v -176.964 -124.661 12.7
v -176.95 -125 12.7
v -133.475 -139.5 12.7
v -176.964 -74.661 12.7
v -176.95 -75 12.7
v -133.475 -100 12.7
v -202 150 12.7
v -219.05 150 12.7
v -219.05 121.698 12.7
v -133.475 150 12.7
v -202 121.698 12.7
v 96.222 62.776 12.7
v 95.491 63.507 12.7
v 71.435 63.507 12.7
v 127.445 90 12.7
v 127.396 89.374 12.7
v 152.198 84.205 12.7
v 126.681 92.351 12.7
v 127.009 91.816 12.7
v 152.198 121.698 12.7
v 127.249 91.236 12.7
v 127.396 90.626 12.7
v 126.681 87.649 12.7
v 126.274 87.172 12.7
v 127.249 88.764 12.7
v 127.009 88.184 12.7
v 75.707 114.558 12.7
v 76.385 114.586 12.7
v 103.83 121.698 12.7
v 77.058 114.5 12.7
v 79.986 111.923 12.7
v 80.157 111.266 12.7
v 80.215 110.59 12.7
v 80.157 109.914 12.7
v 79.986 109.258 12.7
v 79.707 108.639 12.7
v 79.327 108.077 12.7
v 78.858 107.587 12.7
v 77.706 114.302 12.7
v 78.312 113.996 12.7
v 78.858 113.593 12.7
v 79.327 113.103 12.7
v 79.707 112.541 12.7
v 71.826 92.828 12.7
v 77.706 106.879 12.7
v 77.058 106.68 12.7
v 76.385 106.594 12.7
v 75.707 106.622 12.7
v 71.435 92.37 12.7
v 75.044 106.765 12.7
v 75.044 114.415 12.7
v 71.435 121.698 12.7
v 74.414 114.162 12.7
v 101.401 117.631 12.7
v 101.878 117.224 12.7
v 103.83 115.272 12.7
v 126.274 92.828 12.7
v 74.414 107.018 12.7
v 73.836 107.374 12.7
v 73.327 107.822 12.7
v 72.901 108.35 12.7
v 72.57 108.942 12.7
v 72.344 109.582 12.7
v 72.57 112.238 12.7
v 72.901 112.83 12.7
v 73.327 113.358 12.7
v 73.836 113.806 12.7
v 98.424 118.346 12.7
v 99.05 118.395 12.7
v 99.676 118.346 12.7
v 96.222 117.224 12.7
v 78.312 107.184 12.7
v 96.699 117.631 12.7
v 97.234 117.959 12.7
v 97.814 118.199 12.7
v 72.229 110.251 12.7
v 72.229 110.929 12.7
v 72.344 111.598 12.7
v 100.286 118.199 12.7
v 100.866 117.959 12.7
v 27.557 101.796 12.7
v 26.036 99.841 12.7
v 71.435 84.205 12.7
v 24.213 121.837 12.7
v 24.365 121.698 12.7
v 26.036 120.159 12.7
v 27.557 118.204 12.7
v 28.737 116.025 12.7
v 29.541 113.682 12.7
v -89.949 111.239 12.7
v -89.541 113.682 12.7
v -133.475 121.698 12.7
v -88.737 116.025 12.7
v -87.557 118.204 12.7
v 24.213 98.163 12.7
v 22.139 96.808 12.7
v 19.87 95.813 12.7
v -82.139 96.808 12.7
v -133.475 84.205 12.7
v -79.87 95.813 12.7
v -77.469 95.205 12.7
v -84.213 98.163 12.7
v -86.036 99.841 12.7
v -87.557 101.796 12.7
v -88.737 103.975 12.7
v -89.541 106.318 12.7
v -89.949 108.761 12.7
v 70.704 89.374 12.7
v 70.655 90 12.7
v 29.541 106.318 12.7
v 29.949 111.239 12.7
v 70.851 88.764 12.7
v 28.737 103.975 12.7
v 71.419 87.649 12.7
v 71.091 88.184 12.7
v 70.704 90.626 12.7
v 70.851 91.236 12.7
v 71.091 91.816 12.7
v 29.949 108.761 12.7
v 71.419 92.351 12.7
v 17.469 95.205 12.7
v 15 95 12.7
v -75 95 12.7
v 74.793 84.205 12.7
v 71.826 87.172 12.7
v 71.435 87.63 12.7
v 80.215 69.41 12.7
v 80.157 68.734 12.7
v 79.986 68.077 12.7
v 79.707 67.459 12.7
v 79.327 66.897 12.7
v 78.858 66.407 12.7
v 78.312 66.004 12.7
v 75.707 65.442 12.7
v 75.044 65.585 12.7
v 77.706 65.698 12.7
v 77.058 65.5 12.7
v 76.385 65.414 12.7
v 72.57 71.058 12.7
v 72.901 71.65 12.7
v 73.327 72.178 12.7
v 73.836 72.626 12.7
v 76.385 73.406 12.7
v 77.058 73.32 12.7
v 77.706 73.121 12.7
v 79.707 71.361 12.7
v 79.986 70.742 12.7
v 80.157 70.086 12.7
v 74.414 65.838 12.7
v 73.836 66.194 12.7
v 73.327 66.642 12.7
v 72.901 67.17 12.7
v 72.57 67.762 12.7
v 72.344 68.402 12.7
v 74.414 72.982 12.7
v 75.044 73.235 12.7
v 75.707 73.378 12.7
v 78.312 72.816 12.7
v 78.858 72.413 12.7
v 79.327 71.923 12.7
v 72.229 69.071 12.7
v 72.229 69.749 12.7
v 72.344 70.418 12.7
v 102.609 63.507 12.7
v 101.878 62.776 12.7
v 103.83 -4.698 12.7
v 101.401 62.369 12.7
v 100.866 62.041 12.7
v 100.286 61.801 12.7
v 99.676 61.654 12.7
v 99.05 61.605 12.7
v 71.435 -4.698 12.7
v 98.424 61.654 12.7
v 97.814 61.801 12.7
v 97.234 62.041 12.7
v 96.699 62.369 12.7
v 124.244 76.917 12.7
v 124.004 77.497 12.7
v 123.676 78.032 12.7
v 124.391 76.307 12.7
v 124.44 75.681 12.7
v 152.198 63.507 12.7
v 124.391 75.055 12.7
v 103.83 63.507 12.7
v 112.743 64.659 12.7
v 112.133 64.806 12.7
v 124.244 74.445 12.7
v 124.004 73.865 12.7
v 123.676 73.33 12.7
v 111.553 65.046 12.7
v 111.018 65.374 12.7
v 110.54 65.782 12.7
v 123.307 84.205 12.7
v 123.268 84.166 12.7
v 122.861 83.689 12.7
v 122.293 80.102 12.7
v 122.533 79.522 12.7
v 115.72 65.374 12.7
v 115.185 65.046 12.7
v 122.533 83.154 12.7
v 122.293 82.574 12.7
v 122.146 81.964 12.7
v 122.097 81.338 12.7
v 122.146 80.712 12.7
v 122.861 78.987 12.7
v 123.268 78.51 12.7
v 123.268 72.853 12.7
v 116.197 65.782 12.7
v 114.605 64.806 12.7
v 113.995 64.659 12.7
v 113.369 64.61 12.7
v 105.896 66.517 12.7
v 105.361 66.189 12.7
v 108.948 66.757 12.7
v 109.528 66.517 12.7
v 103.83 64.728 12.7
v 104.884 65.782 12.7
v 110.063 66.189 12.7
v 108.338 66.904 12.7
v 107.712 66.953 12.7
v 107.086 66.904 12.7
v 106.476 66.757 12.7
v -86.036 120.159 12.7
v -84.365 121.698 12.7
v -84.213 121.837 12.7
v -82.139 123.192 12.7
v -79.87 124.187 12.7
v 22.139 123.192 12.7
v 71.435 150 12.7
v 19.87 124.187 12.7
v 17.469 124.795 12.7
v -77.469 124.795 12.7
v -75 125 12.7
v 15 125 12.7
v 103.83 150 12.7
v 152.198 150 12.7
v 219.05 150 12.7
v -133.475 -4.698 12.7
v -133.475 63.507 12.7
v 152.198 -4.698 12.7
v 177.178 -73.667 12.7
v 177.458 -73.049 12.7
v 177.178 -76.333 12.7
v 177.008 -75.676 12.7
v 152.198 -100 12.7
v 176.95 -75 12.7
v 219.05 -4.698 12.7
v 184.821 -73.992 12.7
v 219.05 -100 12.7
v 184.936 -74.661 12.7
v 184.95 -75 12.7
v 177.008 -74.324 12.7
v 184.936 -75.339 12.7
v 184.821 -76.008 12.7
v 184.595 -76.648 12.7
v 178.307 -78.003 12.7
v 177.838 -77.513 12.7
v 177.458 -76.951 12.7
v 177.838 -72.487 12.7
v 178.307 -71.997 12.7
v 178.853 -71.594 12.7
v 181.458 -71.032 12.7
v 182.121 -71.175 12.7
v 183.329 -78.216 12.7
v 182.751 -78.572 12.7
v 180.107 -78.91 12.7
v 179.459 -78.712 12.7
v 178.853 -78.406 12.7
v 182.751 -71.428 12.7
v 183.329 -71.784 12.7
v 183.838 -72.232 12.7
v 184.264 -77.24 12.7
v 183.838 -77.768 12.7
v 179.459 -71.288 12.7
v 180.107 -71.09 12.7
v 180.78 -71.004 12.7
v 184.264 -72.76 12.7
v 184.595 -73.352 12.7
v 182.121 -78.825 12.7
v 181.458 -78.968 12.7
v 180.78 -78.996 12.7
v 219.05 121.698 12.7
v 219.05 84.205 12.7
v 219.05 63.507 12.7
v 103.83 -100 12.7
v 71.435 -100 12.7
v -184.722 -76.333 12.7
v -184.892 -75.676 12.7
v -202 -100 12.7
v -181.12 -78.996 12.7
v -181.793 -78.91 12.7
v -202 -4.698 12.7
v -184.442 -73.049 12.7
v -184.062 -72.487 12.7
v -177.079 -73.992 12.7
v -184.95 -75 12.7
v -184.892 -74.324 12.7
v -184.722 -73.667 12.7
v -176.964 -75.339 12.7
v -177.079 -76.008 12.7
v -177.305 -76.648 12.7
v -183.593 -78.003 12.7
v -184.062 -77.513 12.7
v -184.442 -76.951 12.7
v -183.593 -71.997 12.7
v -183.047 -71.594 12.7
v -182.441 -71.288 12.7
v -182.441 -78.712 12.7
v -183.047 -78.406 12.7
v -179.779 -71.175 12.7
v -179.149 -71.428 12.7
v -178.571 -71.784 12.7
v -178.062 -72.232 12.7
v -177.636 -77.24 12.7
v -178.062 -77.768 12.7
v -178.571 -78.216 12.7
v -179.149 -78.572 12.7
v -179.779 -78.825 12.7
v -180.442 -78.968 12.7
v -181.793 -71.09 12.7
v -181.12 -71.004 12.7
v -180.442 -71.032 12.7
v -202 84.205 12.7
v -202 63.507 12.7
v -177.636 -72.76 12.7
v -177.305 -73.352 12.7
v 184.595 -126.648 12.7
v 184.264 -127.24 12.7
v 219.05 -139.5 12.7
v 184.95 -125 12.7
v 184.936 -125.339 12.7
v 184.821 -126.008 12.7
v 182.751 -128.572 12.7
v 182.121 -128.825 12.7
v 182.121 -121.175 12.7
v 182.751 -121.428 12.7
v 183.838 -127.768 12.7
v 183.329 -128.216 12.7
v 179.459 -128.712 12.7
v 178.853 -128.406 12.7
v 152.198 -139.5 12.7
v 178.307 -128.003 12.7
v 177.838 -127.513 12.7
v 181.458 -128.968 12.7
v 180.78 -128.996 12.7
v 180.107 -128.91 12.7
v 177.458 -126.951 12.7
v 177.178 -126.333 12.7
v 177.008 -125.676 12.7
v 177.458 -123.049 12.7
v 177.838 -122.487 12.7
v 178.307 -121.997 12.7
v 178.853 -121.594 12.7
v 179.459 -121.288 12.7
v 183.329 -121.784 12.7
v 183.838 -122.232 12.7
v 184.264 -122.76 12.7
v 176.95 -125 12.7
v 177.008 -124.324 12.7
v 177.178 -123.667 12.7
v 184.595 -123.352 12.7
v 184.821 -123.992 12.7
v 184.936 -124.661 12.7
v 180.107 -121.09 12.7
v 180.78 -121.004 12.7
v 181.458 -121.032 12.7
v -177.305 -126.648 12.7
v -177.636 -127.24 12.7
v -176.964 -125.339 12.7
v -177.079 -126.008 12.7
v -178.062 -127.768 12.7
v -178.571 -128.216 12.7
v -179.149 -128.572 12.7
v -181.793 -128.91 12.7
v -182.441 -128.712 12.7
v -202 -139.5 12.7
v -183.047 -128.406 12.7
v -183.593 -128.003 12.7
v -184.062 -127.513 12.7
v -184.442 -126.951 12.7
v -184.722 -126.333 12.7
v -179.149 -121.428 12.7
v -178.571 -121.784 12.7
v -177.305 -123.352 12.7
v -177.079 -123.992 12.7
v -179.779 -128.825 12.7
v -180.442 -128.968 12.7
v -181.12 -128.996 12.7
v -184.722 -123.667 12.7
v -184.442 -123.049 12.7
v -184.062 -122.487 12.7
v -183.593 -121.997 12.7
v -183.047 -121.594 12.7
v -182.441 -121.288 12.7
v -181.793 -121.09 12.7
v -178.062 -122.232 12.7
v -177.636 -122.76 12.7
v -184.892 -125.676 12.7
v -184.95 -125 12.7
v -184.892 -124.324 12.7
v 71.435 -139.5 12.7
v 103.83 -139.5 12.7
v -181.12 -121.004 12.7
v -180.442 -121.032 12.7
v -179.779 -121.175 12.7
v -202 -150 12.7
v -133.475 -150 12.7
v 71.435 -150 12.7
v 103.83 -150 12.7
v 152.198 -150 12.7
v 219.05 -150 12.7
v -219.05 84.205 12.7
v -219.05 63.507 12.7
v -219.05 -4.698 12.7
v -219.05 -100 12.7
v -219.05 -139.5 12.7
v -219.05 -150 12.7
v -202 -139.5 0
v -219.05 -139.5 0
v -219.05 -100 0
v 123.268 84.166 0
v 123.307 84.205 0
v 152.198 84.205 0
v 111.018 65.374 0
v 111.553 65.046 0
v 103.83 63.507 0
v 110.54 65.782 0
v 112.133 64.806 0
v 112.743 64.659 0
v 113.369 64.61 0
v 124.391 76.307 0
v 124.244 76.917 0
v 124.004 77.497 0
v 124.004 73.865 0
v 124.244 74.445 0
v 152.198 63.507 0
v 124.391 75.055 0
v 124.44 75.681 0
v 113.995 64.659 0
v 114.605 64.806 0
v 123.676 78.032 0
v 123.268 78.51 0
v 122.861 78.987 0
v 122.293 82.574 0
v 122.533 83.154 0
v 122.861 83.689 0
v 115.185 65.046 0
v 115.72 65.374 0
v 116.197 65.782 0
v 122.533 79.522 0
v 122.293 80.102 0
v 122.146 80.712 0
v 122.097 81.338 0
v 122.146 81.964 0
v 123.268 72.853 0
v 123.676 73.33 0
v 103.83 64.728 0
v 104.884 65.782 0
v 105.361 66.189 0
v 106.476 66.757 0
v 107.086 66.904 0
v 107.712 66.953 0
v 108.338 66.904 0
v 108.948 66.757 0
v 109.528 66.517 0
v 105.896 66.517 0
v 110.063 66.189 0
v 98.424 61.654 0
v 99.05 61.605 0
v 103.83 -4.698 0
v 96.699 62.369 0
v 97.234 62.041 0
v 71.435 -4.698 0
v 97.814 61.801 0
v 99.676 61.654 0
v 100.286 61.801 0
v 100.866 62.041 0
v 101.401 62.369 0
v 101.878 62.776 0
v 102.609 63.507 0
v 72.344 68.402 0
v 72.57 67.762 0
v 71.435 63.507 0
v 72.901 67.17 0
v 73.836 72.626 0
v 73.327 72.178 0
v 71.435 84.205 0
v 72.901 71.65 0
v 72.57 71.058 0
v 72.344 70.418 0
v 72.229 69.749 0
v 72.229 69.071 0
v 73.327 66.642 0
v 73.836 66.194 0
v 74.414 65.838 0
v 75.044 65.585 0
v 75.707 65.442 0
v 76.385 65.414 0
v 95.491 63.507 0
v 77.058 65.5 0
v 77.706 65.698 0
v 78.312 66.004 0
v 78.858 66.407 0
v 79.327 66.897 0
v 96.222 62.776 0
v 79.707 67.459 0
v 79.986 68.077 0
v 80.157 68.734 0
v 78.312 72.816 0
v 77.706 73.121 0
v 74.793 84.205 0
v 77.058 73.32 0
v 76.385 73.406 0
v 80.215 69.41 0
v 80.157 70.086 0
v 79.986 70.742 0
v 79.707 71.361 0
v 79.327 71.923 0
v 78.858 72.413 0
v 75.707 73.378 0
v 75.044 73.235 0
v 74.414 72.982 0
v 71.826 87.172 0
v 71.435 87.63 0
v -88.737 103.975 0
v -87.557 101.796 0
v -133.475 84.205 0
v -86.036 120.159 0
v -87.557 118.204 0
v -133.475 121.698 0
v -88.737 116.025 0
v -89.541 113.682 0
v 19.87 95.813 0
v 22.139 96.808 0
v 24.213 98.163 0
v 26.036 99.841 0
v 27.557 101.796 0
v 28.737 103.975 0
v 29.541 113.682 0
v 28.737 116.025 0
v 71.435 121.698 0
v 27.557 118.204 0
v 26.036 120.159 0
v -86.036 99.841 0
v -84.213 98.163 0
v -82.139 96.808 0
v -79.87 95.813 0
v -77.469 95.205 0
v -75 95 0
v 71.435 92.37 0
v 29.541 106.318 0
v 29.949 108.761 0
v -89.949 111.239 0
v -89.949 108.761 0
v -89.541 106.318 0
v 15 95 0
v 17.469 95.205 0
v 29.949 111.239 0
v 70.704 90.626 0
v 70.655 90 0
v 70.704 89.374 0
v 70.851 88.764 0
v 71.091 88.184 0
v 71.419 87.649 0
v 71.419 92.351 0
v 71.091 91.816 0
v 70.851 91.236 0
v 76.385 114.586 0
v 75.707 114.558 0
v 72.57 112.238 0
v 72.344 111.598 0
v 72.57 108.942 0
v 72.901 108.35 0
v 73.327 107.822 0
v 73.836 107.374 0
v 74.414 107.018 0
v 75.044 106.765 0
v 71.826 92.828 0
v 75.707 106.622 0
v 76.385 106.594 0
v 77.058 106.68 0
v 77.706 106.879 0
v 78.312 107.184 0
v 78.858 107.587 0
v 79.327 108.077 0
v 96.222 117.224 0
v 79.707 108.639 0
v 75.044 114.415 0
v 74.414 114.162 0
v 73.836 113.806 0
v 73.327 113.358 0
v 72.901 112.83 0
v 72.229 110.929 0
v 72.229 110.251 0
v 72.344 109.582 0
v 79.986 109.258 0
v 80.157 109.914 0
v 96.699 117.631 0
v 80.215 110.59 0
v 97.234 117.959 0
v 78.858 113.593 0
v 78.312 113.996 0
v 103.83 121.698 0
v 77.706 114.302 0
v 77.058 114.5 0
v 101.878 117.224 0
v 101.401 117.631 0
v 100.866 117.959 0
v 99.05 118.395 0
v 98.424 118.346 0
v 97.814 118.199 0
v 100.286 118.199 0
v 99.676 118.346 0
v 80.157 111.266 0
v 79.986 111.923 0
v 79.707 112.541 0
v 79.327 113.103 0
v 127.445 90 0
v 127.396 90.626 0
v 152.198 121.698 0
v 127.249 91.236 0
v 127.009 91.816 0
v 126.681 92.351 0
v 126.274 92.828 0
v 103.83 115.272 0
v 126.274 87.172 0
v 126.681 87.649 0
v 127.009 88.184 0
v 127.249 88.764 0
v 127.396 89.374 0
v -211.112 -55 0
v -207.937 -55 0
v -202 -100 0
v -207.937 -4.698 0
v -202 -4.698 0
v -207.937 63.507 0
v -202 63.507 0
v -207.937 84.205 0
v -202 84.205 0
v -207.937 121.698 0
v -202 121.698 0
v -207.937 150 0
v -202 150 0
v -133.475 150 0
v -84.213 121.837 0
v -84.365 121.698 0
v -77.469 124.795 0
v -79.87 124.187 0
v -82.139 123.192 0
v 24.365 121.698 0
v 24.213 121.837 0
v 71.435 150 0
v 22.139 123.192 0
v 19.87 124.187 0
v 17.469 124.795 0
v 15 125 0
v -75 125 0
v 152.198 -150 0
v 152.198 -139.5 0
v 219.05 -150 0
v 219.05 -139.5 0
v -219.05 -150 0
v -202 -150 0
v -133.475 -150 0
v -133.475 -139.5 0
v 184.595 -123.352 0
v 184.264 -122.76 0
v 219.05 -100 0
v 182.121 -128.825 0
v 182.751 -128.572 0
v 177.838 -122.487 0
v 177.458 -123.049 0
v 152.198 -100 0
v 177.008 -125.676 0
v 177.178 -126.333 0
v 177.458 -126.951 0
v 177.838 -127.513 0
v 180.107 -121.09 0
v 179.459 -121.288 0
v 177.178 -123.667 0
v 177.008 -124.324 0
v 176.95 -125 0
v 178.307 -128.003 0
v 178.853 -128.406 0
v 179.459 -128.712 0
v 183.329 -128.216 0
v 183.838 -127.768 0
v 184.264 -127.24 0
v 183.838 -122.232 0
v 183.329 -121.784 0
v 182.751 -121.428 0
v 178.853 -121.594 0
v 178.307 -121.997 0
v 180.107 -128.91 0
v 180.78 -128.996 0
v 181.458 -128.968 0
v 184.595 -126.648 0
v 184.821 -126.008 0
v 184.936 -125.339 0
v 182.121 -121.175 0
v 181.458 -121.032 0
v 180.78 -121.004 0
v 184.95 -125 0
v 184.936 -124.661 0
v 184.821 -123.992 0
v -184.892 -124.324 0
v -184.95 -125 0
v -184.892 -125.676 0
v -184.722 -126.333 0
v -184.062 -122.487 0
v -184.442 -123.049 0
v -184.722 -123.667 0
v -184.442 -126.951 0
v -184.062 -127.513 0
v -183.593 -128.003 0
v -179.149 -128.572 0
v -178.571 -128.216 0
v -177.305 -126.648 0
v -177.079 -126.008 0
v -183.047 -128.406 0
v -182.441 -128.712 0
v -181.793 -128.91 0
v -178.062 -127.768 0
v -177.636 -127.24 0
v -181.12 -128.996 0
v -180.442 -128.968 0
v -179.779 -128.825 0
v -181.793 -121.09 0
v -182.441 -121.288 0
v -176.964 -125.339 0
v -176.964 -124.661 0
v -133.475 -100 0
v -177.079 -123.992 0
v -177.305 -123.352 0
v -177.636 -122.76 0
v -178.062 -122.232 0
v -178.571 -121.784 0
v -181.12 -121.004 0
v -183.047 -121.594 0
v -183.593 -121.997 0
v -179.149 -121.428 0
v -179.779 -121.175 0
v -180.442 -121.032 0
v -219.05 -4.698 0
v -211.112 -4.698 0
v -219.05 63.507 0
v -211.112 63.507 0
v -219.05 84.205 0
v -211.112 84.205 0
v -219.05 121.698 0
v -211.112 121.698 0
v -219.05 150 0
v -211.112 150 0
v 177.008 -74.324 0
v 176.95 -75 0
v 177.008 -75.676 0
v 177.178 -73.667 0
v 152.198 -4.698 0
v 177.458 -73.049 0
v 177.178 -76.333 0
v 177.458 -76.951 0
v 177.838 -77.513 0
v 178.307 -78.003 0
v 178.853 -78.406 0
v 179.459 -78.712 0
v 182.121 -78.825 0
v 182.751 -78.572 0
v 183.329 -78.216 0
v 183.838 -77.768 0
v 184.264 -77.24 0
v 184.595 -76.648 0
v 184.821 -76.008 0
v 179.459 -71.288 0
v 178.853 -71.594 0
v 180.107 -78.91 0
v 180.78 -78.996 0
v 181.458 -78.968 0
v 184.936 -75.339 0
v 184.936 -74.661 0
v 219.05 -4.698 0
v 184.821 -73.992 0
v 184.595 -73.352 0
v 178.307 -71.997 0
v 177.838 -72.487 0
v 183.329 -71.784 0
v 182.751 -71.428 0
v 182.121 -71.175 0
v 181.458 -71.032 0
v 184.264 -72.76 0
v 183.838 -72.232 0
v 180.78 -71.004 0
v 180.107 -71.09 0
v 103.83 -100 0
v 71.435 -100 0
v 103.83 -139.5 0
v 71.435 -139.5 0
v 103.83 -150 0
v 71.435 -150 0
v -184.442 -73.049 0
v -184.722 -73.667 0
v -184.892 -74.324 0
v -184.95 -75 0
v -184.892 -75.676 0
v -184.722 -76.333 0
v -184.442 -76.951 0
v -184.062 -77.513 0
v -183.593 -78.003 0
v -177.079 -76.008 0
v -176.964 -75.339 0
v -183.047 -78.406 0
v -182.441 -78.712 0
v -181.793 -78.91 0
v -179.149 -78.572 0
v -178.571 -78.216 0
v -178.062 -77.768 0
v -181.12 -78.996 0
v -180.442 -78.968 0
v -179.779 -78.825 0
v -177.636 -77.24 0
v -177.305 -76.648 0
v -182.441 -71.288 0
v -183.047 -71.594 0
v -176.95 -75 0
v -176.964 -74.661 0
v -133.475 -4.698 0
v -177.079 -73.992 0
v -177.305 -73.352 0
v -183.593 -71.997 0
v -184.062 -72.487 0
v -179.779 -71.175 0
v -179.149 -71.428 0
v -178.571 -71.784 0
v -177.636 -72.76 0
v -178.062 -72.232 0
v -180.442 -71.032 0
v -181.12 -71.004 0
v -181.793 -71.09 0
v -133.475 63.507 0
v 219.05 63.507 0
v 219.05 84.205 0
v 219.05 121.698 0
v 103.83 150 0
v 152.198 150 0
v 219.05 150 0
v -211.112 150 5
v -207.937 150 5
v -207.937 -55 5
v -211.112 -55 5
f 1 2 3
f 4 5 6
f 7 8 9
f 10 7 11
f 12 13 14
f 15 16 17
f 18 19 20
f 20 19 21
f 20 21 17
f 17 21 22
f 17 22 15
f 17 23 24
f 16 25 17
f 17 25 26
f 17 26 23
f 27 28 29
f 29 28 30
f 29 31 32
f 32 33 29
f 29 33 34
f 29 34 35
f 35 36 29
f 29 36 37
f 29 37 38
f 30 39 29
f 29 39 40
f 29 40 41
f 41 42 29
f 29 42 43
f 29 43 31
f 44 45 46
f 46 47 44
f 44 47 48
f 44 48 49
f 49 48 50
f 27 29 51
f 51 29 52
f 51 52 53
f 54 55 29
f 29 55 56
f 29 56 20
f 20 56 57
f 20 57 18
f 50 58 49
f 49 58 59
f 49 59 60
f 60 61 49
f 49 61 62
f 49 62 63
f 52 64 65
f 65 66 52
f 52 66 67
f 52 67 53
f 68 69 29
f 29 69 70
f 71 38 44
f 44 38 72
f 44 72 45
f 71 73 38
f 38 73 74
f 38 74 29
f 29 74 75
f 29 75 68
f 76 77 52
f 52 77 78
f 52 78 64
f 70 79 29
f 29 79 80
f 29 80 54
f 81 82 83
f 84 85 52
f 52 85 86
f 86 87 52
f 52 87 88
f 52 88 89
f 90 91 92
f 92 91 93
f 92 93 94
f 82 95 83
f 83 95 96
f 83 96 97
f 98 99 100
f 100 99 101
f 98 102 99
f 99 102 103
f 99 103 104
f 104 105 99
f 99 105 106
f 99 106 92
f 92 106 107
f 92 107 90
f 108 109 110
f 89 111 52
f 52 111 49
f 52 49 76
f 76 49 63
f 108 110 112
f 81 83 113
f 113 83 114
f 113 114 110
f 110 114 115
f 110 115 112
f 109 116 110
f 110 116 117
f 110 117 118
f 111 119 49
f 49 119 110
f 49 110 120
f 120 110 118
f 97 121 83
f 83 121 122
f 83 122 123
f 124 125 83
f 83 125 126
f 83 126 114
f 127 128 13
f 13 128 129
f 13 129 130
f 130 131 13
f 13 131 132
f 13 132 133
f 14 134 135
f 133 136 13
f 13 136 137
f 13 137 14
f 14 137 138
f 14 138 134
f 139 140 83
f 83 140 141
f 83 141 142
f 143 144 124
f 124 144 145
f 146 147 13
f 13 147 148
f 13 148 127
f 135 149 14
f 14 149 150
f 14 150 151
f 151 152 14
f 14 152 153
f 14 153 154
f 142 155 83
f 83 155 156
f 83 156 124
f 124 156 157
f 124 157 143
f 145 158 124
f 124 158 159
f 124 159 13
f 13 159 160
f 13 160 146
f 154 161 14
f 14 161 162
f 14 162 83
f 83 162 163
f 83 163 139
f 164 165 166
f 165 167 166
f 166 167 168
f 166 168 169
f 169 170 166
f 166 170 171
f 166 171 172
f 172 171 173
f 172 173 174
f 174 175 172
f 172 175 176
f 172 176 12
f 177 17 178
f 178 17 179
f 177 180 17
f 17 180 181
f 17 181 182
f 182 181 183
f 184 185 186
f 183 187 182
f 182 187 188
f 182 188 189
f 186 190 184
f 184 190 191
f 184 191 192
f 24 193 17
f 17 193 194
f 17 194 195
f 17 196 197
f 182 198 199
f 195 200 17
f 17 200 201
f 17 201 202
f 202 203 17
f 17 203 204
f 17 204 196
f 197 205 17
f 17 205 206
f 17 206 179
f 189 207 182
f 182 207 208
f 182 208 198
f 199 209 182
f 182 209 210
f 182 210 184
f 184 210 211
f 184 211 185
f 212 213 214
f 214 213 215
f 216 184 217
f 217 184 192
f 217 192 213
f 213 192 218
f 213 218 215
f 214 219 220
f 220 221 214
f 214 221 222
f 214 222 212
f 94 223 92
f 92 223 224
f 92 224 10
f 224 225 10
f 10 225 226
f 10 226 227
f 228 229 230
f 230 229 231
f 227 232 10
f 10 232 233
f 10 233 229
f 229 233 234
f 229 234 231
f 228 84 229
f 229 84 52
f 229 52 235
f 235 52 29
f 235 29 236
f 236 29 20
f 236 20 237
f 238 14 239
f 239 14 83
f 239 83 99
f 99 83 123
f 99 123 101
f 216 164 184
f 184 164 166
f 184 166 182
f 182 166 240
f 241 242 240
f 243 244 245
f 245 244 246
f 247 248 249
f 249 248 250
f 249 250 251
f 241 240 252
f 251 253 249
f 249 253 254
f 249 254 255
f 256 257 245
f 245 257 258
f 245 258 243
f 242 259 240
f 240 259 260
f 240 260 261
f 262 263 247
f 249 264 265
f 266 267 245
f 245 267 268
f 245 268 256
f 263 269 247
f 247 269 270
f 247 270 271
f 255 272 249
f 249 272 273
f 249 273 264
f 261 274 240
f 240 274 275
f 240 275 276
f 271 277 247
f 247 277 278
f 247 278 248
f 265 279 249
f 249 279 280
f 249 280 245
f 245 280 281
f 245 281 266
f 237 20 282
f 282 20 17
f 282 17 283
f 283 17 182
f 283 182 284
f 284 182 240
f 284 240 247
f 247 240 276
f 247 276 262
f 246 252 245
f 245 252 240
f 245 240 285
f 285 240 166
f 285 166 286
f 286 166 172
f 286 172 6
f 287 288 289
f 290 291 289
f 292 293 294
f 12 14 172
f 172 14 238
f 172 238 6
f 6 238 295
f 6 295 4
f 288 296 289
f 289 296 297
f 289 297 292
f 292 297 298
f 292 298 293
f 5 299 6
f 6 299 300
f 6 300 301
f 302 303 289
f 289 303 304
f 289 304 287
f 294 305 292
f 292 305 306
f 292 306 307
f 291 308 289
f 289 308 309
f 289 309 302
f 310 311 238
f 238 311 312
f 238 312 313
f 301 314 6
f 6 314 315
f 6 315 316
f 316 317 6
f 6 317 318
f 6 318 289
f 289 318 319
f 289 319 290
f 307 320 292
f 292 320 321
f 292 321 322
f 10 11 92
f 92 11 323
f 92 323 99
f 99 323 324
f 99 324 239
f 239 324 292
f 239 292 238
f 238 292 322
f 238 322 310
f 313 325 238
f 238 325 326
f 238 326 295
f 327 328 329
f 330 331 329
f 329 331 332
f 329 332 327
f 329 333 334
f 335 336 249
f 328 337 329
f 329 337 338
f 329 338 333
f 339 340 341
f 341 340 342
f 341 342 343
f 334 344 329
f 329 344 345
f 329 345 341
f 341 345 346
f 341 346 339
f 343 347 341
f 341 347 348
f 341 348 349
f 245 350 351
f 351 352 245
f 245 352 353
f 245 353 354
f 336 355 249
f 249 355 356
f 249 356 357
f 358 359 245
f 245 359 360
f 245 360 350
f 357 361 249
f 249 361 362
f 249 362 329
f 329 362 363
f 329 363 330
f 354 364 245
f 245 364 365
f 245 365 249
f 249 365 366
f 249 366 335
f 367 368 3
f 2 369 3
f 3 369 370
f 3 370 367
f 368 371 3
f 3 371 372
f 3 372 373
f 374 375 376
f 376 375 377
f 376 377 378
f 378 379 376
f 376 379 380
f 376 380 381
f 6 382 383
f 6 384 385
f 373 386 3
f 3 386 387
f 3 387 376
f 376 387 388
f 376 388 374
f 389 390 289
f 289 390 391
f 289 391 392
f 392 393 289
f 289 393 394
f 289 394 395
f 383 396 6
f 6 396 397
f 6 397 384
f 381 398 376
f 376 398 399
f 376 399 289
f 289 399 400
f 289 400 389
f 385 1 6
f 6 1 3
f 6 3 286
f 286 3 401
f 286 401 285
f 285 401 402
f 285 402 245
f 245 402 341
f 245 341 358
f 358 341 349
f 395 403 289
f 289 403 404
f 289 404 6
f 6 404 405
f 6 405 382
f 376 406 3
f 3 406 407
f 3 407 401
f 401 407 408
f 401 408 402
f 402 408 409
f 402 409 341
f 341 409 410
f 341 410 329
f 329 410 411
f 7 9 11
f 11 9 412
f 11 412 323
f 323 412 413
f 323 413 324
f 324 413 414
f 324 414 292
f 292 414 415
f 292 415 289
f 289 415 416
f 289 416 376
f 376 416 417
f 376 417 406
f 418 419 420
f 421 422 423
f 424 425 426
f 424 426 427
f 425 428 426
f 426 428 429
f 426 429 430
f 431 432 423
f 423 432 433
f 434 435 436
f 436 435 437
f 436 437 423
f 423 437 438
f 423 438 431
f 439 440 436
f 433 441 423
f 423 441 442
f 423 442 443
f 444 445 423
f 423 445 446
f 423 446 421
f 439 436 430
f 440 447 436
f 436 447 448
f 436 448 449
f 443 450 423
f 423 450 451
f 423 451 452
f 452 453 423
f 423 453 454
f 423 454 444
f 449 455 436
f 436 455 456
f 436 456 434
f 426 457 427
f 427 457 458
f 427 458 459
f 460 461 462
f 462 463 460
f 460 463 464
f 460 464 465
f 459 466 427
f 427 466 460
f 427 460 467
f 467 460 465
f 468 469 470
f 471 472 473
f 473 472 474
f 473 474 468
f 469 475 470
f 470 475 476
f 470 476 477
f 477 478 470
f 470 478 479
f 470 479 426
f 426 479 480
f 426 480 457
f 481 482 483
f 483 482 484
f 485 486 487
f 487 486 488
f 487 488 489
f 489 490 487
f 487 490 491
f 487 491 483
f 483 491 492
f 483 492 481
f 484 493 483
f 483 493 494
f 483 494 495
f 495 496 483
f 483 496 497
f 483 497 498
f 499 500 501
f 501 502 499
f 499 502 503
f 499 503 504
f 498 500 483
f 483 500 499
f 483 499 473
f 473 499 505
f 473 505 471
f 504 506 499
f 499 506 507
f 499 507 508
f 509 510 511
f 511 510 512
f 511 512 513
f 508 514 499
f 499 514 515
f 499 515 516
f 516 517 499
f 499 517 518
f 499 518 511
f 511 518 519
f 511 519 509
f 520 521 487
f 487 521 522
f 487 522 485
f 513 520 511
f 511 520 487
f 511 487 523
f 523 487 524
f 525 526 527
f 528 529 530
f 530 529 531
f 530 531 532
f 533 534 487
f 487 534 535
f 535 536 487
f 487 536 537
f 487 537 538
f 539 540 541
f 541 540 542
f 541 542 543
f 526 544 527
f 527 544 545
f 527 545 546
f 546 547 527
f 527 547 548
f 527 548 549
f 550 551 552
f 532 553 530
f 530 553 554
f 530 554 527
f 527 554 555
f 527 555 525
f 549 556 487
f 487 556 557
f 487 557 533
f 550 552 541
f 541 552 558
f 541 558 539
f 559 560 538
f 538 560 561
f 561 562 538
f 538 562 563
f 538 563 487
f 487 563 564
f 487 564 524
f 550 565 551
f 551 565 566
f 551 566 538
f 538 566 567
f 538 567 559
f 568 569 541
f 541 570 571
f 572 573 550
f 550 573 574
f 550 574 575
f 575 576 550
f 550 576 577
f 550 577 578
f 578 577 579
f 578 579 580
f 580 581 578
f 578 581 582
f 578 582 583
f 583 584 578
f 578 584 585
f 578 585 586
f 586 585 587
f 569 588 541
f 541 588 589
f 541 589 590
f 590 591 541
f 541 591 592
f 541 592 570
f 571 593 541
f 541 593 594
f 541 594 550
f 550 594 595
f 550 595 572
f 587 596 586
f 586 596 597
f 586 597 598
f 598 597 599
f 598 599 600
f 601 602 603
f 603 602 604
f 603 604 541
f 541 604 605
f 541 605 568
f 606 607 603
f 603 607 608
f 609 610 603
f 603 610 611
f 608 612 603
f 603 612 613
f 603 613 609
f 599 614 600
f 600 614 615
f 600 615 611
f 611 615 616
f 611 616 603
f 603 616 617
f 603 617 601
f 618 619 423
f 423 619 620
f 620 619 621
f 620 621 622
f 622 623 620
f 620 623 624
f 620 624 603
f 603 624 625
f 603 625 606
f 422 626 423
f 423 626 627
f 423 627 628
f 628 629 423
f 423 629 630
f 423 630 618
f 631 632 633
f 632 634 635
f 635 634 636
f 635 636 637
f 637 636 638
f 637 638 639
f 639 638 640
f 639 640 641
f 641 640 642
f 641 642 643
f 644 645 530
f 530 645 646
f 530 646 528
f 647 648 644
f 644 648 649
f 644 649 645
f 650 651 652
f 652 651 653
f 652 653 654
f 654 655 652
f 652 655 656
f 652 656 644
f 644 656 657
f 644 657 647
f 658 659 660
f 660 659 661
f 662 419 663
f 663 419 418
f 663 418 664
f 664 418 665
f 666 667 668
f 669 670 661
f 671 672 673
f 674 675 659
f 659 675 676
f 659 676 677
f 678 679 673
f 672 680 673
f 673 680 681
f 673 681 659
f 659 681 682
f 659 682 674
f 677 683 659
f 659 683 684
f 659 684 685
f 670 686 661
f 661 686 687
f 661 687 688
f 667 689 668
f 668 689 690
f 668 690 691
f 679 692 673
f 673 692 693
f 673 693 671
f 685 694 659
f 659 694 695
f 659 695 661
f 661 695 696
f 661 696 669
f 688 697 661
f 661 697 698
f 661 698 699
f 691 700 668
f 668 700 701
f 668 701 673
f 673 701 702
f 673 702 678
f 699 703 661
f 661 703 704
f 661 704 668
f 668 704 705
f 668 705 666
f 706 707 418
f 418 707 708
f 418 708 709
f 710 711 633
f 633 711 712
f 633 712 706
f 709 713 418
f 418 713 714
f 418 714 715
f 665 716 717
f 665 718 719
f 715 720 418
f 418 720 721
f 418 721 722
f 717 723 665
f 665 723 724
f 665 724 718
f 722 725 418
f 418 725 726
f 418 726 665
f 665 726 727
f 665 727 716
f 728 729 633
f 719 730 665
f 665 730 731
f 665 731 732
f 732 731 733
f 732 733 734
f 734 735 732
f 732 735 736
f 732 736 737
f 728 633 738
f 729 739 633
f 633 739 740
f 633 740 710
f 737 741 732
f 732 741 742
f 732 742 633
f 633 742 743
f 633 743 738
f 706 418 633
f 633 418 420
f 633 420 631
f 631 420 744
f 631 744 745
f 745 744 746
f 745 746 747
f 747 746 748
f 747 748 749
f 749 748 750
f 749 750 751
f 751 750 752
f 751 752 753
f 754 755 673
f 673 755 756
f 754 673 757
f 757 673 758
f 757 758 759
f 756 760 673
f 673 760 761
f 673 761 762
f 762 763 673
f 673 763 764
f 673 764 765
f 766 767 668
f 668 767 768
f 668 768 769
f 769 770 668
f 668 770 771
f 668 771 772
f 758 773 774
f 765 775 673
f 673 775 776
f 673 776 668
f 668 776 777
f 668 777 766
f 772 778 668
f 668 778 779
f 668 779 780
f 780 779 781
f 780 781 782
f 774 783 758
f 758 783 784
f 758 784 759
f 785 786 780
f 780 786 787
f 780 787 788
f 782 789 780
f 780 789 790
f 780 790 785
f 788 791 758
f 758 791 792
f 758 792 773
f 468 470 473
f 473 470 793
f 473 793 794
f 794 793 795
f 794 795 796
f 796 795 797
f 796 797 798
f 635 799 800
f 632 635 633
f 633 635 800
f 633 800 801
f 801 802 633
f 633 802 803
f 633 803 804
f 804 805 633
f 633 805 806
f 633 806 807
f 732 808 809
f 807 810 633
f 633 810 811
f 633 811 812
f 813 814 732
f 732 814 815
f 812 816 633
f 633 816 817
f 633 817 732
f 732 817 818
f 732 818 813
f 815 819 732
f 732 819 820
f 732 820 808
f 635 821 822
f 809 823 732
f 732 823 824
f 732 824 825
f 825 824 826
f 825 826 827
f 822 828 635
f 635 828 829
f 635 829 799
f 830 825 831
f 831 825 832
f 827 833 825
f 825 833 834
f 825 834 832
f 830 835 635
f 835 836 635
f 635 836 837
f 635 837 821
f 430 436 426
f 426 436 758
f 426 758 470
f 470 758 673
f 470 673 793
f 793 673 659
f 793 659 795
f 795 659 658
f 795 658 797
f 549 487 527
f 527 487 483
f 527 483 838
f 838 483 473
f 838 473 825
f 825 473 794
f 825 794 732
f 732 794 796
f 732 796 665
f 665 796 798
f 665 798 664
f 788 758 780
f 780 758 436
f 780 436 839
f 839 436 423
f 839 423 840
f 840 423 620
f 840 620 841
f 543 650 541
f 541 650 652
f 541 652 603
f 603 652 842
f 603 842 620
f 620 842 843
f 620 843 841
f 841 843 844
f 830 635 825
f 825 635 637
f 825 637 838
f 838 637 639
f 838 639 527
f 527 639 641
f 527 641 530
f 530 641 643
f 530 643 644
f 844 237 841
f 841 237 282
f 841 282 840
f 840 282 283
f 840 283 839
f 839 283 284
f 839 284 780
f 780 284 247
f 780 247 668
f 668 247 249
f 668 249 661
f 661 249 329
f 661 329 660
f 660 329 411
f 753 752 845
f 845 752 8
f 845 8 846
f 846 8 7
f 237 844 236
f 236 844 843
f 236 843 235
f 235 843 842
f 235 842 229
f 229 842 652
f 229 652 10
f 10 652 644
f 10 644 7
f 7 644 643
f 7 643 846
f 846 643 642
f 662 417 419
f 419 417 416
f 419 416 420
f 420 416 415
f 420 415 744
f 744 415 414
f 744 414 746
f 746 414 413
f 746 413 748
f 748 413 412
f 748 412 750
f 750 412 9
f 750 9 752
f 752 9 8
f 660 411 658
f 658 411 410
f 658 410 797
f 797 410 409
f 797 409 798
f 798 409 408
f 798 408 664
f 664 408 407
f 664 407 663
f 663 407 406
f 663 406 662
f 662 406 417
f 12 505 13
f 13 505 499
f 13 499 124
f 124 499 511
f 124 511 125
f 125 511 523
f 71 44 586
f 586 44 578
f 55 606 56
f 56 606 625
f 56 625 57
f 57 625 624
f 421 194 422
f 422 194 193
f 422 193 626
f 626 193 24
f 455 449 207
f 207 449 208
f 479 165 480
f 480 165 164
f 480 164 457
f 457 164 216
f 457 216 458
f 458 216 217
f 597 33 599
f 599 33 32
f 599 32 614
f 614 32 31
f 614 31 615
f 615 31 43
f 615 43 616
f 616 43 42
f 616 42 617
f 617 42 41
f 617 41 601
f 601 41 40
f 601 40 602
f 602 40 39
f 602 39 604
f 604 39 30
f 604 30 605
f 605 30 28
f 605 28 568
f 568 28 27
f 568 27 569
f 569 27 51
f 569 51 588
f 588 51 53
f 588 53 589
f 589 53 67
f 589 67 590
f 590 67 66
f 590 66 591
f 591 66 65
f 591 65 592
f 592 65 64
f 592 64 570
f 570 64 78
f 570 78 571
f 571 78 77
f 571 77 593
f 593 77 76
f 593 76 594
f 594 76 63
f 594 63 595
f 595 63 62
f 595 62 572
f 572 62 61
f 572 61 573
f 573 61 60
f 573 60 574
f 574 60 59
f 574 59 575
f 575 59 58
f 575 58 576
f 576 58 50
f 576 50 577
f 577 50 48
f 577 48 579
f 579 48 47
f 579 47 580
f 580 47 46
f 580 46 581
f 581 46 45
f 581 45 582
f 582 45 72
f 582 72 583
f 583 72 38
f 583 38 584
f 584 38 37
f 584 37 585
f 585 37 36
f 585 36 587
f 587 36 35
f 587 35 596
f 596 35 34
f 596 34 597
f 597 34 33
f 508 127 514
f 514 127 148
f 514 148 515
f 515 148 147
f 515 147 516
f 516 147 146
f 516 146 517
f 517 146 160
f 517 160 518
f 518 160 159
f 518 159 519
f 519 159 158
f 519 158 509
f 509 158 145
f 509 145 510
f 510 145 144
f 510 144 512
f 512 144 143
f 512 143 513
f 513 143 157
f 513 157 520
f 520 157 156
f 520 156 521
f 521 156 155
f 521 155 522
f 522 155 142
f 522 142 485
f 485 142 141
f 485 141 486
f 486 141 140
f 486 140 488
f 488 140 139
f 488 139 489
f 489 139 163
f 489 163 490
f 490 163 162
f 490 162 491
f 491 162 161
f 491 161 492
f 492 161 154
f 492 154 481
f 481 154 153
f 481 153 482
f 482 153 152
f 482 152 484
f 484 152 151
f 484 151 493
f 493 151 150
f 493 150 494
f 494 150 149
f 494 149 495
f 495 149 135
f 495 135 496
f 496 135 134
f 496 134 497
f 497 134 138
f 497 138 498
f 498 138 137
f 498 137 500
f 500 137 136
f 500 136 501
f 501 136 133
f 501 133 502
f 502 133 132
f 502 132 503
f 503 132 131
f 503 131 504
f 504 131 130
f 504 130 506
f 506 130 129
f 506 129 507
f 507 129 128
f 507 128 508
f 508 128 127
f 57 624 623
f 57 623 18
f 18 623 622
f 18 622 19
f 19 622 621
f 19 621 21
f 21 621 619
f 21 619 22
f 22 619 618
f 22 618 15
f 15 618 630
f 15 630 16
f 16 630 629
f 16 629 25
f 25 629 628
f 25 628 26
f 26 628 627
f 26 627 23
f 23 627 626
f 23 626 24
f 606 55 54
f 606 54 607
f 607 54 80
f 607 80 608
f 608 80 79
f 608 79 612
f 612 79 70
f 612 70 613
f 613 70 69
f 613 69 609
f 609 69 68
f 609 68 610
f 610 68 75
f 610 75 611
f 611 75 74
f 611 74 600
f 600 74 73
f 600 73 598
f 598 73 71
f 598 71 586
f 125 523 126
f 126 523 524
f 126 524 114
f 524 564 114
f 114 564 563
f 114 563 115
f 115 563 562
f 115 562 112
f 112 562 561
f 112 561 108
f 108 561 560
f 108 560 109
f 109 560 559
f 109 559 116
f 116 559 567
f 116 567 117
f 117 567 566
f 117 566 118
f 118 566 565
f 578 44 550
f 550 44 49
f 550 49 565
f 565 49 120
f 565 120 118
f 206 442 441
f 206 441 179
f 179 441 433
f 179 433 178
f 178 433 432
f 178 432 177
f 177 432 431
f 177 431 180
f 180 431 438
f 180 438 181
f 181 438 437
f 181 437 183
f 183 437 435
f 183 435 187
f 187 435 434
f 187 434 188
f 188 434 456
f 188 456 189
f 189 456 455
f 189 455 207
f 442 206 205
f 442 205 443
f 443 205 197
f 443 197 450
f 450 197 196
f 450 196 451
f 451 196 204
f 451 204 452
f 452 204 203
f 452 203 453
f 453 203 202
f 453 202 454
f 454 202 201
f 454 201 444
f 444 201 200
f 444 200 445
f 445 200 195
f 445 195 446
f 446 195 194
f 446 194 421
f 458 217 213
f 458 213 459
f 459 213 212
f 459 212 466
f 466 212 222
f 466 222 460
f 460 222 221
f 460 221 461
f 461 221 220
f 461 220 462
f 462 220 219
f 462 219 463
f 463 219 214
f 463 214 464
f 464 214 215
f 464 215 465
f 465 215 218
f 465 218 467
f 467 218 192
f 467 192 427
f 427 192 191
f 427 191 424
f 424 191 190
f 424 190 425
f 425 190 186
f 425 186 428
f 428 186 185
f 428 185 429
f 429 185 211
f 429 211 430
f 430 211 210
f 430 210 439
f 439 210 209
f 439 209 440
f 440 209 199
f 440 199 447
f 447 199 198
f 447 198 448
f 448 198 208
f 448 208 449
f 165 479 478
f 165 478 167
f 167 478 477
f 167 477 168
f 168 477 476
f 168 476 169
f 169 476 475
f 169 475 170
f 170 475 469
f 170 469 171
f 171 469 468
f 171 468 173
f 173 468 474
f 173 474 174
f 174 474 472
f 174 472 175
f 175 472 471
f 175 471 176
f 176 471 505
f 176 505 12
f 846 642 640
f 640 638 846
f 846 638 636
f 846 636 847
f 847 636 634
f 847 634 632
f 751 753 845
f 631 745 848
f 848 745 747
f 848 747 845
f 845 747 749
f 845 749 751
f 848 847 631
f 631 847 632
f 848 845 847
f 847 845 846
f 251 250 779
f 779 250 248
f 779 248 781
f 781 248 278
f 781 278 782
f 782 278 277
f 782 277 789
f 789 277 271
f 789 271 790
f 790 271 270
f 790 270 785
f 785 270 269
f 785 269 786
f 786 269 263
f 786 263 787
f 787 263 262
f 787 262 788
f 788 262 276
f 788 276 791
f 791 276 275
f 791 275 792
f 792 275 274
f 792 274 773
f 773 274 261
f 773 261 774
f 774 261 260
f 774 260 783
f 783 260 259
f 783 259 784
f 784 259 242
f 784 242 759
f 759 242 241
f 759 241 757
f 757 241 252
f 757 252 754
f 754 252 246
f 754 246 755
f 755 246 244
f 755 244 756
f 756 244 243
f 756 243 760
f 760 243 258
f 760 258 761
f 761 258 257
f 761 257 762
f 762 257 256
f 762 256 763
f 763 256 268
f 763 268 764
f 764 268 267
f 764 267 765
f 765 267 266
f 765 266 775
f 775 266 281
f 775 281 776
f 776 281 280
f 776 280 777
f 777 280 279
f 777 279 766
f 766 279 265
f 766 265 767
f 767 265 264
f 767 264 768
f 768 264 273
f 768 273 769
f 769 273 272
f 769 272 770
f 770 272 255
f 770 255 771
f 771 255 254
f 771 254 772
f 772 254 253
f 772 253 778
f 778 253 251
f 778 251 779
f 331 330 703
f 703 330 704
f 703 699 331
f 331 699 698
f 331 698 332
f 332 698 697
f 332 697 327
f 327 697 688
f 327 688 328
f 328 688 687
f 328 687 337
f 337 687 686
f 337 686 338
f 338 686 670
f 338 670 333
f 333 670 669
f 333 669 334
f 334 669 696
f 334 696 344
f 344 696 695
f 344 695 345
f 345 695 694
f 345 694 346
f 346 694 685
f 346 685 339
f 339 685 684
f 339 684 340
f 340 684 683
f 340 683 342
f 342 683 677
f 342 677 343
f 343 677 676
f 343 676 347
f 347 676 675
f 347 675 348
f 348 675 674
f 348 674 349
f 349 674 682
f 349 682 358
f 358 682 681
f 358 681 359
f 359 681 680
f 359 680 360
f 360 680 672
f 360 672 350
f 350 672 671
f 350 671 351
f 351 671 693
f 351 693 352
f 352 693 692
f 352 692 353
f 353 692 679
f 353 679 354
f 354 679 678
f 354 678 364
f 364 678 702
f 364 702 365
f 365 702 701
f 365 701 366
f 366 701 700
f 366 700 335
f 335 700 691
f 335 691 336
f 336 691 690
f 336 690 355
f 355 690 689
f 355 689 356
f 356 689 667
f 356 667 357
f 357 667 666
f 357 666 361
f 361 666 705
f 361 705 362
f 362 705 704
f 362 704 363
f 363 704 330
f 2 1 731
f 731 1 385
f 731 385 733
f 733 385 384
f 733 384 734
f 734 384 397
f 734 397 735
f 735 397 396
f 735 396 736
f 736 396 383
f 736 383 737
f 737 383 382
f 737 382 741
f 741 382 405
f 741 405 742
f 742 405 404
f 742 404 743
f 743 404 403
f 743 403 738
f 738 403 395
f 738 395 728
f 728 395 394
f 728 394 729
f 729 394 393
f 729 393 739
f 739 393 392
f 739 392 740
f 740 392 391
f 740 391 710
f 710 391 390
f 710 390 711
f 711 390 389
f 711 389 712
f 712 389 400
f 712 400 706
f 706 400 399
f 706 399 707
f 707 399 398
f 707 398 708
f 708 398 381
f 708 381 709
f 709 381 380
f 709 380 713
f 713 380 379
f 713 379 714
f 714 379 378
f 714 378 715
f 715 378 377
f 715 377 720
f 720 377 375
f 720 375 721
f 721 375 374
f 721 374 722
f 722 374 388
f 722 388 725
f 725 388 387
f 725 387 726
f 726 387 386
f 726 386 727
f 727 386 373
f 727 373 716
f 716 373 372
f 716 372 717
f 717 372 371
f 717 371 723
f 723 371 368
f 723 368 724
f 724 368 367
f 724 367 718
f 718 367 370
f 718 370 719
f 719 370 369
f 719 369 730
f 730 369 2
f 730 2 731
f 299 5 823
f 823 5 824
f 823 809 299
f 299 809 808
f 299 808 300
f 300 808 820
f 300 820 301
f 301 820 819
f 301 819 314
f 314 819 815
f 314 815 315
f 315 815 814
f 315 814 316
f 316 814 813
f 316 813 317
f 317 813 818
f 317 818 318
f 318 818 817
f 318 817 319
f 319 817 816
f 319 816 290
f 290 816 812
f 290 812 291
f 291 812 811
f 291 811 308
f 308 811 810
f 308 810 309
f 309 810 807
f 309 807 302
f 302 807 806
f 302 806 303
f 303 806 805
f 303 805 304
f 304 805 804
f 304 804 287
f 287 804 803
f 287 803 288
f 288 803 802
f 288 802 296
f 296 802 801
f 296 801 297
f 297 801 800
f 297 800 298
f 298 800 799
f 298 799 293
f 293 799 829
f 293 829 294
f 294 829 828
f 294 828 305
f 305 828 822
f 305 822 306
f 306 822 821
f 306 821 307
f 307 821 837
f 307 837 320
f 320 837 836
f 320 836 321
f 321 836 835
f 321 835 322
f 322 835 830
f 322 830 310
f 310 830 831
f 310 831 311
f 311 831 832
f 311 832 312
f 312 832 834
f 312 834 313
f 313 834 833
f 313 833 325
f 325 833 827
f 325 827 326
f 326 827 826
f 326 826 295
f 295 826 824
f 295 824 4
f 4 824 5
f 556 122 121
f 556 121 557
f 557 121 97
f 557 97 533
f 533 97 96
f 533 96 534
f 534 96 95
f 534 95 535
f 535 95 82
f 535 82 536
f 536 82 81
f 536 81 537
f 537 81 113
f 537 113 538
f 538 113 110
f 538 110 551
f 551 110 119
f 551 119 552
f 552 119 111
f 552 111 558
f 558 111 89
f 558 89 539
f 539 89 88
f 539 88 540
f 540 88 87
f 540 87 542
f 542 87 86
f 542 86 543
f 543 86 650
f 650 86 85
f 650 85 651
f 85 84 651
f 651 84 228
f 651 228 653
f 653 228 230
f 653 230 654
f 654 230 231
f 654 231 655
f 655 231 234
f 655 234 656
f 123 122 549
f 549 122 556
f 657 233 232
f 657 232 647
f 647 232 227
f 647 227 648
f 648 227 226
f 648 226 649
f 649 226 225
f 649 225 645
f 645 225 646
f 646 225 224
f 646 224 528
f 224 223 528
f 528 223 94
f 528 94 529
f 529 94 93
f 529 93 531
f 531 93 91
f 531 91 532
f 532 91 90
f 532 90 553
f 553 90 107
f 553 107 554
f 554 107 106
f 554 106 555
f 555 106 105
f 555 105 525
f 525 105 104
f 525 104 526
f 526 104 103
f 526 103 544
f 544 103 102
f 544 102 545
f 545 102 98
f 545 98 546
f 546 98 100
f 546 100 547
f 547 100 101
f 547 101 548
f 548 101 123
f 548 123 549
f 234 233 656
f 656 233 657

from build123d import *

# Parameters (mm, degrees)
SKETCH1_W           = 438.1
SKETCH1_H           = 300
BOSS_EXTRUDE1_DEPTH = 12.7
CUT_EXTRUDE1_REACH  = 267.79
SKETCH2_R           = 4
FILLET1_R           = 4
SKETCH3_W           = 3.175
SKETCH3_H           = 205
CUT_EXTRUDE2_DEPTH  = 5
CUT_EXTRUDE3_REACH  = 267.79
SKETCH4_R           = 4
CUT_EXTRUDE4_REACH  = 267.79


with BuildPart() as part:
    # Sketch1 → Boss-Extrude1 (new body)
    with BuildSketch(Plane.XY):
        Rectangle(SKETCH1_W, SKETCH1_H)
    extrude(amount=BOSS_EXTRUDE1_DEPTH)

    # Sketch2 → Cut-Extrude1 (cut, up to next)
    with BuildSketch(Plane.XY.offset(12.7), mode=Mode.PRIVATE) as cut_extrude1_sk1:
        with Locations((76.214870385, 110.590065585)):
            Circle(SKETCH2_R)
    cut_extrude1_tool1 = extrude(cut_extrude1_sk1.sketch, amount=-CUT_EXTRUDE1_REACH, mode=Mode.PRIVATE) & part.part
    # Sketch2 → Cut-Extrude1 (cut, up to next)
    with BuildSketch(Plane.XY.offset(12.7), mode=Mode.PRIVATE) as cut_extrude1_sk2:
        with Locations((76.214870385, 69.409934415)):
            Circle(SKETCH2_R)
    cut_extrude1_tool2 = extrude(cut_extrude1_sk2.sketch, amount=-CUT_EXTRUDE1_REACH, mode=Mode.PRIVATE) & part.part
    # Sketch2 → Cut-Extrude1 (cut, up to next)
    with BuildSketch(Plane.XY.offset(12.7), mode=Mode.PRIVATE) as cut_extrude1_sk3:
        Polygon((99.05, 120.0520382), (68.9979618, 90), (99.05, 59.9479618), (107.71205807, 68.610019869), (113.368912319, 62.95316562), (126.09683438, 75.681087681), (120.439980131, 81.33794193), (129.1020382, 90), align=None)
    cut_extrude1_tool3 = extrude(cut_extrude1_sk3.sketch, amount=-CUT_EXTRUDE1_REACH, mode=Mode.PRIVATE) & part.part
    add(cut_extrude1_tool1.solids().sort_by_distance((76.21487, 110.590066, 12.7))[0], mode=Mode.SUBTRACT)
    add(cut_extrude1_tool2.solids().sort_by_distance((76.21487, 69.409934, 12.7))[0], mode=Mode.SUBTRACT)
    add(cut_extrude1_tool3.solids().sort_by_distance((100.368313, 88.681687, 12.7))[0], mode=Mode.SUBTRACT)

    # Fillet1
    fillet1_edges = [part.edges().sort_by_distance(p)[0] for p in [
        (99.05, 120.0520382, 6.35),
        (68.9979618, 90, 6.35),
        (120.439980131, 81.33794193, 6.35),
        (126.09683438, 75.681087681, 6.35),
        (113.368912319, 62.95316562, 6.35),
        (107.71205807, 68.610019869, 6.35),
        (99.05, 59.9479618, 6.35),
        (129.1020382, 90, 6.35),
    ]]
    fillet(fillet1_edges, radius=FILLET1_R - 0.0001)  # a hair under: the kernel refuses the full size

    # Sketch3 → Cut-Extrude2 (cut)
    with BuildSketch(Plane(origin=(0, 0, 0), x_dir=(-1, 0, 0), z_dir=(0, 0, -1))):
        with Locations((209.525, 47.5)):
            Rectangle(SKETCH3_W, SKETCH3_H)
    extrude(amount=-CUT_EXTRUDE2_DEPTH, mode=Mode.SUBTRACT)

    # Sketch4 → Cut-Extrude3 (cut, up to next)
    with BuildSketch(Plane(origin=(0, 0, 0), x_dir=(-1, 0, 0), z_dir=(0, 0, -1)), mode=Mode.PRIVATE) as cut_extrude3_sk1:
        with Locations((-180.95, -75)):
            Circle(SKETCH4_R)
    cut_extrude3_tool1 = extrude(cut_extrude3_sk1.sketch, amount=-CUT_EXTRUDE3_REACH, mode=Mode.PRIVATE) & part.part
    # Sketch4 → Cut-Extrude3 (cut, up to next)
    with BuildSketch(Plane(origin=(0, 0, 0), x_dir=(-1, 0, 0), z_dir=(0, 0, -1)), mode=Mode.PRIVATE) as cut_extrude3_sk2:
        with Locations(Location((-180.95, -125, 0), (0, 0, 180))):
            Circle(SKETCH4_R)
    cut_extrude3_tool2 = extrude(cut_extrude3_sk2.sketch, amount=-CUT_EXTRUDE3_REACH, mode=Mode.PRIVATE) & part.part
    # Sketch4 → Cut-Extrude3 (cut, up to next)
    with BuildSketch(Plane(origin=(0, 0, 0), x_dir=(-1, 0, 0), z_dir=(0, 0, -1)), mode=Mode.PRIVATE) as cut_extrude3_sk3:
        with Locations((180.95, -125)):
            Circle(SKETCH4_R)
    cut_extrude3_tool3 = extrude(cut_extrude3_sk3.sketch, amount=-CUT_EXTRUDE3_REACH, mode=Mode.PRIVATE) & part.part
    # Sketch4 → Cut-Extrude3 (cut, up to next)
    with BuildSketch(Plane(origin=(0, 0, 0), x_dir=(-1, 0, 0), z_dir=(0, 0, -1)), mode=Mode.PRIVATE) as cut_extrude3_sk4:
        with Locations(Location((180.95, -75, 0), (0, 0, 180))):
            Circle(SKETCH4_R)
    cut_extrude3_tool4 = extrude(cut_extrude3_sk4.sketch, amount=-CUT_EXTRUDE3_REACH, mode=Mode.PRIVATE) & part.part
    add(cut_extrude3_tool1.solids().sort_by_distance((180.95, -75, 0))[0], mode=Mode.SUBTRACT)
    add(cut_extrude3_tool2.solids().sort_by_distance((180.95, -125, 0))[0], mode=Mode.SUBTRACT)
    add(cut_extrude3_tool3.solids().sort_by_distance((-180.95, -125, 0))[0], mode=Mode.SUBTRACT)
    add(cut_extrude3_tool4.solids().sort_by_distance((-180.95, -75, 0))[0], mode=Mode.SUBTRACT)

    # Sketch5 → Cut-Extrude4 (cut, up to next)
    with BuildSketch(Plane.XY.offset(12.7), mode=Mode.PRIVATE) as cut_extrude4_sk1:
        with BuildLine():
            Line((15, 95), (-75, 95))
            ThreePointArc((-75, 95), (-90, 110), (-75, 125))
            Line((-75, 125), (15, 125))
            ThreePointArc((15, 125), (30, 110), (15, 95))
        make_face()
    cut_extrude4_tool1 = extrude(cut_extrude4_sk1.sketch, amount=-CUT_EXTRUDE4_REACH, mode=Mode.PRIVATE) & part.part
    add(cut_extrude4_tool1.solids().sort_by_distance((-30, 110, 12.7))[0], mode=Mode.SUBTRACT)


solid = part.part
